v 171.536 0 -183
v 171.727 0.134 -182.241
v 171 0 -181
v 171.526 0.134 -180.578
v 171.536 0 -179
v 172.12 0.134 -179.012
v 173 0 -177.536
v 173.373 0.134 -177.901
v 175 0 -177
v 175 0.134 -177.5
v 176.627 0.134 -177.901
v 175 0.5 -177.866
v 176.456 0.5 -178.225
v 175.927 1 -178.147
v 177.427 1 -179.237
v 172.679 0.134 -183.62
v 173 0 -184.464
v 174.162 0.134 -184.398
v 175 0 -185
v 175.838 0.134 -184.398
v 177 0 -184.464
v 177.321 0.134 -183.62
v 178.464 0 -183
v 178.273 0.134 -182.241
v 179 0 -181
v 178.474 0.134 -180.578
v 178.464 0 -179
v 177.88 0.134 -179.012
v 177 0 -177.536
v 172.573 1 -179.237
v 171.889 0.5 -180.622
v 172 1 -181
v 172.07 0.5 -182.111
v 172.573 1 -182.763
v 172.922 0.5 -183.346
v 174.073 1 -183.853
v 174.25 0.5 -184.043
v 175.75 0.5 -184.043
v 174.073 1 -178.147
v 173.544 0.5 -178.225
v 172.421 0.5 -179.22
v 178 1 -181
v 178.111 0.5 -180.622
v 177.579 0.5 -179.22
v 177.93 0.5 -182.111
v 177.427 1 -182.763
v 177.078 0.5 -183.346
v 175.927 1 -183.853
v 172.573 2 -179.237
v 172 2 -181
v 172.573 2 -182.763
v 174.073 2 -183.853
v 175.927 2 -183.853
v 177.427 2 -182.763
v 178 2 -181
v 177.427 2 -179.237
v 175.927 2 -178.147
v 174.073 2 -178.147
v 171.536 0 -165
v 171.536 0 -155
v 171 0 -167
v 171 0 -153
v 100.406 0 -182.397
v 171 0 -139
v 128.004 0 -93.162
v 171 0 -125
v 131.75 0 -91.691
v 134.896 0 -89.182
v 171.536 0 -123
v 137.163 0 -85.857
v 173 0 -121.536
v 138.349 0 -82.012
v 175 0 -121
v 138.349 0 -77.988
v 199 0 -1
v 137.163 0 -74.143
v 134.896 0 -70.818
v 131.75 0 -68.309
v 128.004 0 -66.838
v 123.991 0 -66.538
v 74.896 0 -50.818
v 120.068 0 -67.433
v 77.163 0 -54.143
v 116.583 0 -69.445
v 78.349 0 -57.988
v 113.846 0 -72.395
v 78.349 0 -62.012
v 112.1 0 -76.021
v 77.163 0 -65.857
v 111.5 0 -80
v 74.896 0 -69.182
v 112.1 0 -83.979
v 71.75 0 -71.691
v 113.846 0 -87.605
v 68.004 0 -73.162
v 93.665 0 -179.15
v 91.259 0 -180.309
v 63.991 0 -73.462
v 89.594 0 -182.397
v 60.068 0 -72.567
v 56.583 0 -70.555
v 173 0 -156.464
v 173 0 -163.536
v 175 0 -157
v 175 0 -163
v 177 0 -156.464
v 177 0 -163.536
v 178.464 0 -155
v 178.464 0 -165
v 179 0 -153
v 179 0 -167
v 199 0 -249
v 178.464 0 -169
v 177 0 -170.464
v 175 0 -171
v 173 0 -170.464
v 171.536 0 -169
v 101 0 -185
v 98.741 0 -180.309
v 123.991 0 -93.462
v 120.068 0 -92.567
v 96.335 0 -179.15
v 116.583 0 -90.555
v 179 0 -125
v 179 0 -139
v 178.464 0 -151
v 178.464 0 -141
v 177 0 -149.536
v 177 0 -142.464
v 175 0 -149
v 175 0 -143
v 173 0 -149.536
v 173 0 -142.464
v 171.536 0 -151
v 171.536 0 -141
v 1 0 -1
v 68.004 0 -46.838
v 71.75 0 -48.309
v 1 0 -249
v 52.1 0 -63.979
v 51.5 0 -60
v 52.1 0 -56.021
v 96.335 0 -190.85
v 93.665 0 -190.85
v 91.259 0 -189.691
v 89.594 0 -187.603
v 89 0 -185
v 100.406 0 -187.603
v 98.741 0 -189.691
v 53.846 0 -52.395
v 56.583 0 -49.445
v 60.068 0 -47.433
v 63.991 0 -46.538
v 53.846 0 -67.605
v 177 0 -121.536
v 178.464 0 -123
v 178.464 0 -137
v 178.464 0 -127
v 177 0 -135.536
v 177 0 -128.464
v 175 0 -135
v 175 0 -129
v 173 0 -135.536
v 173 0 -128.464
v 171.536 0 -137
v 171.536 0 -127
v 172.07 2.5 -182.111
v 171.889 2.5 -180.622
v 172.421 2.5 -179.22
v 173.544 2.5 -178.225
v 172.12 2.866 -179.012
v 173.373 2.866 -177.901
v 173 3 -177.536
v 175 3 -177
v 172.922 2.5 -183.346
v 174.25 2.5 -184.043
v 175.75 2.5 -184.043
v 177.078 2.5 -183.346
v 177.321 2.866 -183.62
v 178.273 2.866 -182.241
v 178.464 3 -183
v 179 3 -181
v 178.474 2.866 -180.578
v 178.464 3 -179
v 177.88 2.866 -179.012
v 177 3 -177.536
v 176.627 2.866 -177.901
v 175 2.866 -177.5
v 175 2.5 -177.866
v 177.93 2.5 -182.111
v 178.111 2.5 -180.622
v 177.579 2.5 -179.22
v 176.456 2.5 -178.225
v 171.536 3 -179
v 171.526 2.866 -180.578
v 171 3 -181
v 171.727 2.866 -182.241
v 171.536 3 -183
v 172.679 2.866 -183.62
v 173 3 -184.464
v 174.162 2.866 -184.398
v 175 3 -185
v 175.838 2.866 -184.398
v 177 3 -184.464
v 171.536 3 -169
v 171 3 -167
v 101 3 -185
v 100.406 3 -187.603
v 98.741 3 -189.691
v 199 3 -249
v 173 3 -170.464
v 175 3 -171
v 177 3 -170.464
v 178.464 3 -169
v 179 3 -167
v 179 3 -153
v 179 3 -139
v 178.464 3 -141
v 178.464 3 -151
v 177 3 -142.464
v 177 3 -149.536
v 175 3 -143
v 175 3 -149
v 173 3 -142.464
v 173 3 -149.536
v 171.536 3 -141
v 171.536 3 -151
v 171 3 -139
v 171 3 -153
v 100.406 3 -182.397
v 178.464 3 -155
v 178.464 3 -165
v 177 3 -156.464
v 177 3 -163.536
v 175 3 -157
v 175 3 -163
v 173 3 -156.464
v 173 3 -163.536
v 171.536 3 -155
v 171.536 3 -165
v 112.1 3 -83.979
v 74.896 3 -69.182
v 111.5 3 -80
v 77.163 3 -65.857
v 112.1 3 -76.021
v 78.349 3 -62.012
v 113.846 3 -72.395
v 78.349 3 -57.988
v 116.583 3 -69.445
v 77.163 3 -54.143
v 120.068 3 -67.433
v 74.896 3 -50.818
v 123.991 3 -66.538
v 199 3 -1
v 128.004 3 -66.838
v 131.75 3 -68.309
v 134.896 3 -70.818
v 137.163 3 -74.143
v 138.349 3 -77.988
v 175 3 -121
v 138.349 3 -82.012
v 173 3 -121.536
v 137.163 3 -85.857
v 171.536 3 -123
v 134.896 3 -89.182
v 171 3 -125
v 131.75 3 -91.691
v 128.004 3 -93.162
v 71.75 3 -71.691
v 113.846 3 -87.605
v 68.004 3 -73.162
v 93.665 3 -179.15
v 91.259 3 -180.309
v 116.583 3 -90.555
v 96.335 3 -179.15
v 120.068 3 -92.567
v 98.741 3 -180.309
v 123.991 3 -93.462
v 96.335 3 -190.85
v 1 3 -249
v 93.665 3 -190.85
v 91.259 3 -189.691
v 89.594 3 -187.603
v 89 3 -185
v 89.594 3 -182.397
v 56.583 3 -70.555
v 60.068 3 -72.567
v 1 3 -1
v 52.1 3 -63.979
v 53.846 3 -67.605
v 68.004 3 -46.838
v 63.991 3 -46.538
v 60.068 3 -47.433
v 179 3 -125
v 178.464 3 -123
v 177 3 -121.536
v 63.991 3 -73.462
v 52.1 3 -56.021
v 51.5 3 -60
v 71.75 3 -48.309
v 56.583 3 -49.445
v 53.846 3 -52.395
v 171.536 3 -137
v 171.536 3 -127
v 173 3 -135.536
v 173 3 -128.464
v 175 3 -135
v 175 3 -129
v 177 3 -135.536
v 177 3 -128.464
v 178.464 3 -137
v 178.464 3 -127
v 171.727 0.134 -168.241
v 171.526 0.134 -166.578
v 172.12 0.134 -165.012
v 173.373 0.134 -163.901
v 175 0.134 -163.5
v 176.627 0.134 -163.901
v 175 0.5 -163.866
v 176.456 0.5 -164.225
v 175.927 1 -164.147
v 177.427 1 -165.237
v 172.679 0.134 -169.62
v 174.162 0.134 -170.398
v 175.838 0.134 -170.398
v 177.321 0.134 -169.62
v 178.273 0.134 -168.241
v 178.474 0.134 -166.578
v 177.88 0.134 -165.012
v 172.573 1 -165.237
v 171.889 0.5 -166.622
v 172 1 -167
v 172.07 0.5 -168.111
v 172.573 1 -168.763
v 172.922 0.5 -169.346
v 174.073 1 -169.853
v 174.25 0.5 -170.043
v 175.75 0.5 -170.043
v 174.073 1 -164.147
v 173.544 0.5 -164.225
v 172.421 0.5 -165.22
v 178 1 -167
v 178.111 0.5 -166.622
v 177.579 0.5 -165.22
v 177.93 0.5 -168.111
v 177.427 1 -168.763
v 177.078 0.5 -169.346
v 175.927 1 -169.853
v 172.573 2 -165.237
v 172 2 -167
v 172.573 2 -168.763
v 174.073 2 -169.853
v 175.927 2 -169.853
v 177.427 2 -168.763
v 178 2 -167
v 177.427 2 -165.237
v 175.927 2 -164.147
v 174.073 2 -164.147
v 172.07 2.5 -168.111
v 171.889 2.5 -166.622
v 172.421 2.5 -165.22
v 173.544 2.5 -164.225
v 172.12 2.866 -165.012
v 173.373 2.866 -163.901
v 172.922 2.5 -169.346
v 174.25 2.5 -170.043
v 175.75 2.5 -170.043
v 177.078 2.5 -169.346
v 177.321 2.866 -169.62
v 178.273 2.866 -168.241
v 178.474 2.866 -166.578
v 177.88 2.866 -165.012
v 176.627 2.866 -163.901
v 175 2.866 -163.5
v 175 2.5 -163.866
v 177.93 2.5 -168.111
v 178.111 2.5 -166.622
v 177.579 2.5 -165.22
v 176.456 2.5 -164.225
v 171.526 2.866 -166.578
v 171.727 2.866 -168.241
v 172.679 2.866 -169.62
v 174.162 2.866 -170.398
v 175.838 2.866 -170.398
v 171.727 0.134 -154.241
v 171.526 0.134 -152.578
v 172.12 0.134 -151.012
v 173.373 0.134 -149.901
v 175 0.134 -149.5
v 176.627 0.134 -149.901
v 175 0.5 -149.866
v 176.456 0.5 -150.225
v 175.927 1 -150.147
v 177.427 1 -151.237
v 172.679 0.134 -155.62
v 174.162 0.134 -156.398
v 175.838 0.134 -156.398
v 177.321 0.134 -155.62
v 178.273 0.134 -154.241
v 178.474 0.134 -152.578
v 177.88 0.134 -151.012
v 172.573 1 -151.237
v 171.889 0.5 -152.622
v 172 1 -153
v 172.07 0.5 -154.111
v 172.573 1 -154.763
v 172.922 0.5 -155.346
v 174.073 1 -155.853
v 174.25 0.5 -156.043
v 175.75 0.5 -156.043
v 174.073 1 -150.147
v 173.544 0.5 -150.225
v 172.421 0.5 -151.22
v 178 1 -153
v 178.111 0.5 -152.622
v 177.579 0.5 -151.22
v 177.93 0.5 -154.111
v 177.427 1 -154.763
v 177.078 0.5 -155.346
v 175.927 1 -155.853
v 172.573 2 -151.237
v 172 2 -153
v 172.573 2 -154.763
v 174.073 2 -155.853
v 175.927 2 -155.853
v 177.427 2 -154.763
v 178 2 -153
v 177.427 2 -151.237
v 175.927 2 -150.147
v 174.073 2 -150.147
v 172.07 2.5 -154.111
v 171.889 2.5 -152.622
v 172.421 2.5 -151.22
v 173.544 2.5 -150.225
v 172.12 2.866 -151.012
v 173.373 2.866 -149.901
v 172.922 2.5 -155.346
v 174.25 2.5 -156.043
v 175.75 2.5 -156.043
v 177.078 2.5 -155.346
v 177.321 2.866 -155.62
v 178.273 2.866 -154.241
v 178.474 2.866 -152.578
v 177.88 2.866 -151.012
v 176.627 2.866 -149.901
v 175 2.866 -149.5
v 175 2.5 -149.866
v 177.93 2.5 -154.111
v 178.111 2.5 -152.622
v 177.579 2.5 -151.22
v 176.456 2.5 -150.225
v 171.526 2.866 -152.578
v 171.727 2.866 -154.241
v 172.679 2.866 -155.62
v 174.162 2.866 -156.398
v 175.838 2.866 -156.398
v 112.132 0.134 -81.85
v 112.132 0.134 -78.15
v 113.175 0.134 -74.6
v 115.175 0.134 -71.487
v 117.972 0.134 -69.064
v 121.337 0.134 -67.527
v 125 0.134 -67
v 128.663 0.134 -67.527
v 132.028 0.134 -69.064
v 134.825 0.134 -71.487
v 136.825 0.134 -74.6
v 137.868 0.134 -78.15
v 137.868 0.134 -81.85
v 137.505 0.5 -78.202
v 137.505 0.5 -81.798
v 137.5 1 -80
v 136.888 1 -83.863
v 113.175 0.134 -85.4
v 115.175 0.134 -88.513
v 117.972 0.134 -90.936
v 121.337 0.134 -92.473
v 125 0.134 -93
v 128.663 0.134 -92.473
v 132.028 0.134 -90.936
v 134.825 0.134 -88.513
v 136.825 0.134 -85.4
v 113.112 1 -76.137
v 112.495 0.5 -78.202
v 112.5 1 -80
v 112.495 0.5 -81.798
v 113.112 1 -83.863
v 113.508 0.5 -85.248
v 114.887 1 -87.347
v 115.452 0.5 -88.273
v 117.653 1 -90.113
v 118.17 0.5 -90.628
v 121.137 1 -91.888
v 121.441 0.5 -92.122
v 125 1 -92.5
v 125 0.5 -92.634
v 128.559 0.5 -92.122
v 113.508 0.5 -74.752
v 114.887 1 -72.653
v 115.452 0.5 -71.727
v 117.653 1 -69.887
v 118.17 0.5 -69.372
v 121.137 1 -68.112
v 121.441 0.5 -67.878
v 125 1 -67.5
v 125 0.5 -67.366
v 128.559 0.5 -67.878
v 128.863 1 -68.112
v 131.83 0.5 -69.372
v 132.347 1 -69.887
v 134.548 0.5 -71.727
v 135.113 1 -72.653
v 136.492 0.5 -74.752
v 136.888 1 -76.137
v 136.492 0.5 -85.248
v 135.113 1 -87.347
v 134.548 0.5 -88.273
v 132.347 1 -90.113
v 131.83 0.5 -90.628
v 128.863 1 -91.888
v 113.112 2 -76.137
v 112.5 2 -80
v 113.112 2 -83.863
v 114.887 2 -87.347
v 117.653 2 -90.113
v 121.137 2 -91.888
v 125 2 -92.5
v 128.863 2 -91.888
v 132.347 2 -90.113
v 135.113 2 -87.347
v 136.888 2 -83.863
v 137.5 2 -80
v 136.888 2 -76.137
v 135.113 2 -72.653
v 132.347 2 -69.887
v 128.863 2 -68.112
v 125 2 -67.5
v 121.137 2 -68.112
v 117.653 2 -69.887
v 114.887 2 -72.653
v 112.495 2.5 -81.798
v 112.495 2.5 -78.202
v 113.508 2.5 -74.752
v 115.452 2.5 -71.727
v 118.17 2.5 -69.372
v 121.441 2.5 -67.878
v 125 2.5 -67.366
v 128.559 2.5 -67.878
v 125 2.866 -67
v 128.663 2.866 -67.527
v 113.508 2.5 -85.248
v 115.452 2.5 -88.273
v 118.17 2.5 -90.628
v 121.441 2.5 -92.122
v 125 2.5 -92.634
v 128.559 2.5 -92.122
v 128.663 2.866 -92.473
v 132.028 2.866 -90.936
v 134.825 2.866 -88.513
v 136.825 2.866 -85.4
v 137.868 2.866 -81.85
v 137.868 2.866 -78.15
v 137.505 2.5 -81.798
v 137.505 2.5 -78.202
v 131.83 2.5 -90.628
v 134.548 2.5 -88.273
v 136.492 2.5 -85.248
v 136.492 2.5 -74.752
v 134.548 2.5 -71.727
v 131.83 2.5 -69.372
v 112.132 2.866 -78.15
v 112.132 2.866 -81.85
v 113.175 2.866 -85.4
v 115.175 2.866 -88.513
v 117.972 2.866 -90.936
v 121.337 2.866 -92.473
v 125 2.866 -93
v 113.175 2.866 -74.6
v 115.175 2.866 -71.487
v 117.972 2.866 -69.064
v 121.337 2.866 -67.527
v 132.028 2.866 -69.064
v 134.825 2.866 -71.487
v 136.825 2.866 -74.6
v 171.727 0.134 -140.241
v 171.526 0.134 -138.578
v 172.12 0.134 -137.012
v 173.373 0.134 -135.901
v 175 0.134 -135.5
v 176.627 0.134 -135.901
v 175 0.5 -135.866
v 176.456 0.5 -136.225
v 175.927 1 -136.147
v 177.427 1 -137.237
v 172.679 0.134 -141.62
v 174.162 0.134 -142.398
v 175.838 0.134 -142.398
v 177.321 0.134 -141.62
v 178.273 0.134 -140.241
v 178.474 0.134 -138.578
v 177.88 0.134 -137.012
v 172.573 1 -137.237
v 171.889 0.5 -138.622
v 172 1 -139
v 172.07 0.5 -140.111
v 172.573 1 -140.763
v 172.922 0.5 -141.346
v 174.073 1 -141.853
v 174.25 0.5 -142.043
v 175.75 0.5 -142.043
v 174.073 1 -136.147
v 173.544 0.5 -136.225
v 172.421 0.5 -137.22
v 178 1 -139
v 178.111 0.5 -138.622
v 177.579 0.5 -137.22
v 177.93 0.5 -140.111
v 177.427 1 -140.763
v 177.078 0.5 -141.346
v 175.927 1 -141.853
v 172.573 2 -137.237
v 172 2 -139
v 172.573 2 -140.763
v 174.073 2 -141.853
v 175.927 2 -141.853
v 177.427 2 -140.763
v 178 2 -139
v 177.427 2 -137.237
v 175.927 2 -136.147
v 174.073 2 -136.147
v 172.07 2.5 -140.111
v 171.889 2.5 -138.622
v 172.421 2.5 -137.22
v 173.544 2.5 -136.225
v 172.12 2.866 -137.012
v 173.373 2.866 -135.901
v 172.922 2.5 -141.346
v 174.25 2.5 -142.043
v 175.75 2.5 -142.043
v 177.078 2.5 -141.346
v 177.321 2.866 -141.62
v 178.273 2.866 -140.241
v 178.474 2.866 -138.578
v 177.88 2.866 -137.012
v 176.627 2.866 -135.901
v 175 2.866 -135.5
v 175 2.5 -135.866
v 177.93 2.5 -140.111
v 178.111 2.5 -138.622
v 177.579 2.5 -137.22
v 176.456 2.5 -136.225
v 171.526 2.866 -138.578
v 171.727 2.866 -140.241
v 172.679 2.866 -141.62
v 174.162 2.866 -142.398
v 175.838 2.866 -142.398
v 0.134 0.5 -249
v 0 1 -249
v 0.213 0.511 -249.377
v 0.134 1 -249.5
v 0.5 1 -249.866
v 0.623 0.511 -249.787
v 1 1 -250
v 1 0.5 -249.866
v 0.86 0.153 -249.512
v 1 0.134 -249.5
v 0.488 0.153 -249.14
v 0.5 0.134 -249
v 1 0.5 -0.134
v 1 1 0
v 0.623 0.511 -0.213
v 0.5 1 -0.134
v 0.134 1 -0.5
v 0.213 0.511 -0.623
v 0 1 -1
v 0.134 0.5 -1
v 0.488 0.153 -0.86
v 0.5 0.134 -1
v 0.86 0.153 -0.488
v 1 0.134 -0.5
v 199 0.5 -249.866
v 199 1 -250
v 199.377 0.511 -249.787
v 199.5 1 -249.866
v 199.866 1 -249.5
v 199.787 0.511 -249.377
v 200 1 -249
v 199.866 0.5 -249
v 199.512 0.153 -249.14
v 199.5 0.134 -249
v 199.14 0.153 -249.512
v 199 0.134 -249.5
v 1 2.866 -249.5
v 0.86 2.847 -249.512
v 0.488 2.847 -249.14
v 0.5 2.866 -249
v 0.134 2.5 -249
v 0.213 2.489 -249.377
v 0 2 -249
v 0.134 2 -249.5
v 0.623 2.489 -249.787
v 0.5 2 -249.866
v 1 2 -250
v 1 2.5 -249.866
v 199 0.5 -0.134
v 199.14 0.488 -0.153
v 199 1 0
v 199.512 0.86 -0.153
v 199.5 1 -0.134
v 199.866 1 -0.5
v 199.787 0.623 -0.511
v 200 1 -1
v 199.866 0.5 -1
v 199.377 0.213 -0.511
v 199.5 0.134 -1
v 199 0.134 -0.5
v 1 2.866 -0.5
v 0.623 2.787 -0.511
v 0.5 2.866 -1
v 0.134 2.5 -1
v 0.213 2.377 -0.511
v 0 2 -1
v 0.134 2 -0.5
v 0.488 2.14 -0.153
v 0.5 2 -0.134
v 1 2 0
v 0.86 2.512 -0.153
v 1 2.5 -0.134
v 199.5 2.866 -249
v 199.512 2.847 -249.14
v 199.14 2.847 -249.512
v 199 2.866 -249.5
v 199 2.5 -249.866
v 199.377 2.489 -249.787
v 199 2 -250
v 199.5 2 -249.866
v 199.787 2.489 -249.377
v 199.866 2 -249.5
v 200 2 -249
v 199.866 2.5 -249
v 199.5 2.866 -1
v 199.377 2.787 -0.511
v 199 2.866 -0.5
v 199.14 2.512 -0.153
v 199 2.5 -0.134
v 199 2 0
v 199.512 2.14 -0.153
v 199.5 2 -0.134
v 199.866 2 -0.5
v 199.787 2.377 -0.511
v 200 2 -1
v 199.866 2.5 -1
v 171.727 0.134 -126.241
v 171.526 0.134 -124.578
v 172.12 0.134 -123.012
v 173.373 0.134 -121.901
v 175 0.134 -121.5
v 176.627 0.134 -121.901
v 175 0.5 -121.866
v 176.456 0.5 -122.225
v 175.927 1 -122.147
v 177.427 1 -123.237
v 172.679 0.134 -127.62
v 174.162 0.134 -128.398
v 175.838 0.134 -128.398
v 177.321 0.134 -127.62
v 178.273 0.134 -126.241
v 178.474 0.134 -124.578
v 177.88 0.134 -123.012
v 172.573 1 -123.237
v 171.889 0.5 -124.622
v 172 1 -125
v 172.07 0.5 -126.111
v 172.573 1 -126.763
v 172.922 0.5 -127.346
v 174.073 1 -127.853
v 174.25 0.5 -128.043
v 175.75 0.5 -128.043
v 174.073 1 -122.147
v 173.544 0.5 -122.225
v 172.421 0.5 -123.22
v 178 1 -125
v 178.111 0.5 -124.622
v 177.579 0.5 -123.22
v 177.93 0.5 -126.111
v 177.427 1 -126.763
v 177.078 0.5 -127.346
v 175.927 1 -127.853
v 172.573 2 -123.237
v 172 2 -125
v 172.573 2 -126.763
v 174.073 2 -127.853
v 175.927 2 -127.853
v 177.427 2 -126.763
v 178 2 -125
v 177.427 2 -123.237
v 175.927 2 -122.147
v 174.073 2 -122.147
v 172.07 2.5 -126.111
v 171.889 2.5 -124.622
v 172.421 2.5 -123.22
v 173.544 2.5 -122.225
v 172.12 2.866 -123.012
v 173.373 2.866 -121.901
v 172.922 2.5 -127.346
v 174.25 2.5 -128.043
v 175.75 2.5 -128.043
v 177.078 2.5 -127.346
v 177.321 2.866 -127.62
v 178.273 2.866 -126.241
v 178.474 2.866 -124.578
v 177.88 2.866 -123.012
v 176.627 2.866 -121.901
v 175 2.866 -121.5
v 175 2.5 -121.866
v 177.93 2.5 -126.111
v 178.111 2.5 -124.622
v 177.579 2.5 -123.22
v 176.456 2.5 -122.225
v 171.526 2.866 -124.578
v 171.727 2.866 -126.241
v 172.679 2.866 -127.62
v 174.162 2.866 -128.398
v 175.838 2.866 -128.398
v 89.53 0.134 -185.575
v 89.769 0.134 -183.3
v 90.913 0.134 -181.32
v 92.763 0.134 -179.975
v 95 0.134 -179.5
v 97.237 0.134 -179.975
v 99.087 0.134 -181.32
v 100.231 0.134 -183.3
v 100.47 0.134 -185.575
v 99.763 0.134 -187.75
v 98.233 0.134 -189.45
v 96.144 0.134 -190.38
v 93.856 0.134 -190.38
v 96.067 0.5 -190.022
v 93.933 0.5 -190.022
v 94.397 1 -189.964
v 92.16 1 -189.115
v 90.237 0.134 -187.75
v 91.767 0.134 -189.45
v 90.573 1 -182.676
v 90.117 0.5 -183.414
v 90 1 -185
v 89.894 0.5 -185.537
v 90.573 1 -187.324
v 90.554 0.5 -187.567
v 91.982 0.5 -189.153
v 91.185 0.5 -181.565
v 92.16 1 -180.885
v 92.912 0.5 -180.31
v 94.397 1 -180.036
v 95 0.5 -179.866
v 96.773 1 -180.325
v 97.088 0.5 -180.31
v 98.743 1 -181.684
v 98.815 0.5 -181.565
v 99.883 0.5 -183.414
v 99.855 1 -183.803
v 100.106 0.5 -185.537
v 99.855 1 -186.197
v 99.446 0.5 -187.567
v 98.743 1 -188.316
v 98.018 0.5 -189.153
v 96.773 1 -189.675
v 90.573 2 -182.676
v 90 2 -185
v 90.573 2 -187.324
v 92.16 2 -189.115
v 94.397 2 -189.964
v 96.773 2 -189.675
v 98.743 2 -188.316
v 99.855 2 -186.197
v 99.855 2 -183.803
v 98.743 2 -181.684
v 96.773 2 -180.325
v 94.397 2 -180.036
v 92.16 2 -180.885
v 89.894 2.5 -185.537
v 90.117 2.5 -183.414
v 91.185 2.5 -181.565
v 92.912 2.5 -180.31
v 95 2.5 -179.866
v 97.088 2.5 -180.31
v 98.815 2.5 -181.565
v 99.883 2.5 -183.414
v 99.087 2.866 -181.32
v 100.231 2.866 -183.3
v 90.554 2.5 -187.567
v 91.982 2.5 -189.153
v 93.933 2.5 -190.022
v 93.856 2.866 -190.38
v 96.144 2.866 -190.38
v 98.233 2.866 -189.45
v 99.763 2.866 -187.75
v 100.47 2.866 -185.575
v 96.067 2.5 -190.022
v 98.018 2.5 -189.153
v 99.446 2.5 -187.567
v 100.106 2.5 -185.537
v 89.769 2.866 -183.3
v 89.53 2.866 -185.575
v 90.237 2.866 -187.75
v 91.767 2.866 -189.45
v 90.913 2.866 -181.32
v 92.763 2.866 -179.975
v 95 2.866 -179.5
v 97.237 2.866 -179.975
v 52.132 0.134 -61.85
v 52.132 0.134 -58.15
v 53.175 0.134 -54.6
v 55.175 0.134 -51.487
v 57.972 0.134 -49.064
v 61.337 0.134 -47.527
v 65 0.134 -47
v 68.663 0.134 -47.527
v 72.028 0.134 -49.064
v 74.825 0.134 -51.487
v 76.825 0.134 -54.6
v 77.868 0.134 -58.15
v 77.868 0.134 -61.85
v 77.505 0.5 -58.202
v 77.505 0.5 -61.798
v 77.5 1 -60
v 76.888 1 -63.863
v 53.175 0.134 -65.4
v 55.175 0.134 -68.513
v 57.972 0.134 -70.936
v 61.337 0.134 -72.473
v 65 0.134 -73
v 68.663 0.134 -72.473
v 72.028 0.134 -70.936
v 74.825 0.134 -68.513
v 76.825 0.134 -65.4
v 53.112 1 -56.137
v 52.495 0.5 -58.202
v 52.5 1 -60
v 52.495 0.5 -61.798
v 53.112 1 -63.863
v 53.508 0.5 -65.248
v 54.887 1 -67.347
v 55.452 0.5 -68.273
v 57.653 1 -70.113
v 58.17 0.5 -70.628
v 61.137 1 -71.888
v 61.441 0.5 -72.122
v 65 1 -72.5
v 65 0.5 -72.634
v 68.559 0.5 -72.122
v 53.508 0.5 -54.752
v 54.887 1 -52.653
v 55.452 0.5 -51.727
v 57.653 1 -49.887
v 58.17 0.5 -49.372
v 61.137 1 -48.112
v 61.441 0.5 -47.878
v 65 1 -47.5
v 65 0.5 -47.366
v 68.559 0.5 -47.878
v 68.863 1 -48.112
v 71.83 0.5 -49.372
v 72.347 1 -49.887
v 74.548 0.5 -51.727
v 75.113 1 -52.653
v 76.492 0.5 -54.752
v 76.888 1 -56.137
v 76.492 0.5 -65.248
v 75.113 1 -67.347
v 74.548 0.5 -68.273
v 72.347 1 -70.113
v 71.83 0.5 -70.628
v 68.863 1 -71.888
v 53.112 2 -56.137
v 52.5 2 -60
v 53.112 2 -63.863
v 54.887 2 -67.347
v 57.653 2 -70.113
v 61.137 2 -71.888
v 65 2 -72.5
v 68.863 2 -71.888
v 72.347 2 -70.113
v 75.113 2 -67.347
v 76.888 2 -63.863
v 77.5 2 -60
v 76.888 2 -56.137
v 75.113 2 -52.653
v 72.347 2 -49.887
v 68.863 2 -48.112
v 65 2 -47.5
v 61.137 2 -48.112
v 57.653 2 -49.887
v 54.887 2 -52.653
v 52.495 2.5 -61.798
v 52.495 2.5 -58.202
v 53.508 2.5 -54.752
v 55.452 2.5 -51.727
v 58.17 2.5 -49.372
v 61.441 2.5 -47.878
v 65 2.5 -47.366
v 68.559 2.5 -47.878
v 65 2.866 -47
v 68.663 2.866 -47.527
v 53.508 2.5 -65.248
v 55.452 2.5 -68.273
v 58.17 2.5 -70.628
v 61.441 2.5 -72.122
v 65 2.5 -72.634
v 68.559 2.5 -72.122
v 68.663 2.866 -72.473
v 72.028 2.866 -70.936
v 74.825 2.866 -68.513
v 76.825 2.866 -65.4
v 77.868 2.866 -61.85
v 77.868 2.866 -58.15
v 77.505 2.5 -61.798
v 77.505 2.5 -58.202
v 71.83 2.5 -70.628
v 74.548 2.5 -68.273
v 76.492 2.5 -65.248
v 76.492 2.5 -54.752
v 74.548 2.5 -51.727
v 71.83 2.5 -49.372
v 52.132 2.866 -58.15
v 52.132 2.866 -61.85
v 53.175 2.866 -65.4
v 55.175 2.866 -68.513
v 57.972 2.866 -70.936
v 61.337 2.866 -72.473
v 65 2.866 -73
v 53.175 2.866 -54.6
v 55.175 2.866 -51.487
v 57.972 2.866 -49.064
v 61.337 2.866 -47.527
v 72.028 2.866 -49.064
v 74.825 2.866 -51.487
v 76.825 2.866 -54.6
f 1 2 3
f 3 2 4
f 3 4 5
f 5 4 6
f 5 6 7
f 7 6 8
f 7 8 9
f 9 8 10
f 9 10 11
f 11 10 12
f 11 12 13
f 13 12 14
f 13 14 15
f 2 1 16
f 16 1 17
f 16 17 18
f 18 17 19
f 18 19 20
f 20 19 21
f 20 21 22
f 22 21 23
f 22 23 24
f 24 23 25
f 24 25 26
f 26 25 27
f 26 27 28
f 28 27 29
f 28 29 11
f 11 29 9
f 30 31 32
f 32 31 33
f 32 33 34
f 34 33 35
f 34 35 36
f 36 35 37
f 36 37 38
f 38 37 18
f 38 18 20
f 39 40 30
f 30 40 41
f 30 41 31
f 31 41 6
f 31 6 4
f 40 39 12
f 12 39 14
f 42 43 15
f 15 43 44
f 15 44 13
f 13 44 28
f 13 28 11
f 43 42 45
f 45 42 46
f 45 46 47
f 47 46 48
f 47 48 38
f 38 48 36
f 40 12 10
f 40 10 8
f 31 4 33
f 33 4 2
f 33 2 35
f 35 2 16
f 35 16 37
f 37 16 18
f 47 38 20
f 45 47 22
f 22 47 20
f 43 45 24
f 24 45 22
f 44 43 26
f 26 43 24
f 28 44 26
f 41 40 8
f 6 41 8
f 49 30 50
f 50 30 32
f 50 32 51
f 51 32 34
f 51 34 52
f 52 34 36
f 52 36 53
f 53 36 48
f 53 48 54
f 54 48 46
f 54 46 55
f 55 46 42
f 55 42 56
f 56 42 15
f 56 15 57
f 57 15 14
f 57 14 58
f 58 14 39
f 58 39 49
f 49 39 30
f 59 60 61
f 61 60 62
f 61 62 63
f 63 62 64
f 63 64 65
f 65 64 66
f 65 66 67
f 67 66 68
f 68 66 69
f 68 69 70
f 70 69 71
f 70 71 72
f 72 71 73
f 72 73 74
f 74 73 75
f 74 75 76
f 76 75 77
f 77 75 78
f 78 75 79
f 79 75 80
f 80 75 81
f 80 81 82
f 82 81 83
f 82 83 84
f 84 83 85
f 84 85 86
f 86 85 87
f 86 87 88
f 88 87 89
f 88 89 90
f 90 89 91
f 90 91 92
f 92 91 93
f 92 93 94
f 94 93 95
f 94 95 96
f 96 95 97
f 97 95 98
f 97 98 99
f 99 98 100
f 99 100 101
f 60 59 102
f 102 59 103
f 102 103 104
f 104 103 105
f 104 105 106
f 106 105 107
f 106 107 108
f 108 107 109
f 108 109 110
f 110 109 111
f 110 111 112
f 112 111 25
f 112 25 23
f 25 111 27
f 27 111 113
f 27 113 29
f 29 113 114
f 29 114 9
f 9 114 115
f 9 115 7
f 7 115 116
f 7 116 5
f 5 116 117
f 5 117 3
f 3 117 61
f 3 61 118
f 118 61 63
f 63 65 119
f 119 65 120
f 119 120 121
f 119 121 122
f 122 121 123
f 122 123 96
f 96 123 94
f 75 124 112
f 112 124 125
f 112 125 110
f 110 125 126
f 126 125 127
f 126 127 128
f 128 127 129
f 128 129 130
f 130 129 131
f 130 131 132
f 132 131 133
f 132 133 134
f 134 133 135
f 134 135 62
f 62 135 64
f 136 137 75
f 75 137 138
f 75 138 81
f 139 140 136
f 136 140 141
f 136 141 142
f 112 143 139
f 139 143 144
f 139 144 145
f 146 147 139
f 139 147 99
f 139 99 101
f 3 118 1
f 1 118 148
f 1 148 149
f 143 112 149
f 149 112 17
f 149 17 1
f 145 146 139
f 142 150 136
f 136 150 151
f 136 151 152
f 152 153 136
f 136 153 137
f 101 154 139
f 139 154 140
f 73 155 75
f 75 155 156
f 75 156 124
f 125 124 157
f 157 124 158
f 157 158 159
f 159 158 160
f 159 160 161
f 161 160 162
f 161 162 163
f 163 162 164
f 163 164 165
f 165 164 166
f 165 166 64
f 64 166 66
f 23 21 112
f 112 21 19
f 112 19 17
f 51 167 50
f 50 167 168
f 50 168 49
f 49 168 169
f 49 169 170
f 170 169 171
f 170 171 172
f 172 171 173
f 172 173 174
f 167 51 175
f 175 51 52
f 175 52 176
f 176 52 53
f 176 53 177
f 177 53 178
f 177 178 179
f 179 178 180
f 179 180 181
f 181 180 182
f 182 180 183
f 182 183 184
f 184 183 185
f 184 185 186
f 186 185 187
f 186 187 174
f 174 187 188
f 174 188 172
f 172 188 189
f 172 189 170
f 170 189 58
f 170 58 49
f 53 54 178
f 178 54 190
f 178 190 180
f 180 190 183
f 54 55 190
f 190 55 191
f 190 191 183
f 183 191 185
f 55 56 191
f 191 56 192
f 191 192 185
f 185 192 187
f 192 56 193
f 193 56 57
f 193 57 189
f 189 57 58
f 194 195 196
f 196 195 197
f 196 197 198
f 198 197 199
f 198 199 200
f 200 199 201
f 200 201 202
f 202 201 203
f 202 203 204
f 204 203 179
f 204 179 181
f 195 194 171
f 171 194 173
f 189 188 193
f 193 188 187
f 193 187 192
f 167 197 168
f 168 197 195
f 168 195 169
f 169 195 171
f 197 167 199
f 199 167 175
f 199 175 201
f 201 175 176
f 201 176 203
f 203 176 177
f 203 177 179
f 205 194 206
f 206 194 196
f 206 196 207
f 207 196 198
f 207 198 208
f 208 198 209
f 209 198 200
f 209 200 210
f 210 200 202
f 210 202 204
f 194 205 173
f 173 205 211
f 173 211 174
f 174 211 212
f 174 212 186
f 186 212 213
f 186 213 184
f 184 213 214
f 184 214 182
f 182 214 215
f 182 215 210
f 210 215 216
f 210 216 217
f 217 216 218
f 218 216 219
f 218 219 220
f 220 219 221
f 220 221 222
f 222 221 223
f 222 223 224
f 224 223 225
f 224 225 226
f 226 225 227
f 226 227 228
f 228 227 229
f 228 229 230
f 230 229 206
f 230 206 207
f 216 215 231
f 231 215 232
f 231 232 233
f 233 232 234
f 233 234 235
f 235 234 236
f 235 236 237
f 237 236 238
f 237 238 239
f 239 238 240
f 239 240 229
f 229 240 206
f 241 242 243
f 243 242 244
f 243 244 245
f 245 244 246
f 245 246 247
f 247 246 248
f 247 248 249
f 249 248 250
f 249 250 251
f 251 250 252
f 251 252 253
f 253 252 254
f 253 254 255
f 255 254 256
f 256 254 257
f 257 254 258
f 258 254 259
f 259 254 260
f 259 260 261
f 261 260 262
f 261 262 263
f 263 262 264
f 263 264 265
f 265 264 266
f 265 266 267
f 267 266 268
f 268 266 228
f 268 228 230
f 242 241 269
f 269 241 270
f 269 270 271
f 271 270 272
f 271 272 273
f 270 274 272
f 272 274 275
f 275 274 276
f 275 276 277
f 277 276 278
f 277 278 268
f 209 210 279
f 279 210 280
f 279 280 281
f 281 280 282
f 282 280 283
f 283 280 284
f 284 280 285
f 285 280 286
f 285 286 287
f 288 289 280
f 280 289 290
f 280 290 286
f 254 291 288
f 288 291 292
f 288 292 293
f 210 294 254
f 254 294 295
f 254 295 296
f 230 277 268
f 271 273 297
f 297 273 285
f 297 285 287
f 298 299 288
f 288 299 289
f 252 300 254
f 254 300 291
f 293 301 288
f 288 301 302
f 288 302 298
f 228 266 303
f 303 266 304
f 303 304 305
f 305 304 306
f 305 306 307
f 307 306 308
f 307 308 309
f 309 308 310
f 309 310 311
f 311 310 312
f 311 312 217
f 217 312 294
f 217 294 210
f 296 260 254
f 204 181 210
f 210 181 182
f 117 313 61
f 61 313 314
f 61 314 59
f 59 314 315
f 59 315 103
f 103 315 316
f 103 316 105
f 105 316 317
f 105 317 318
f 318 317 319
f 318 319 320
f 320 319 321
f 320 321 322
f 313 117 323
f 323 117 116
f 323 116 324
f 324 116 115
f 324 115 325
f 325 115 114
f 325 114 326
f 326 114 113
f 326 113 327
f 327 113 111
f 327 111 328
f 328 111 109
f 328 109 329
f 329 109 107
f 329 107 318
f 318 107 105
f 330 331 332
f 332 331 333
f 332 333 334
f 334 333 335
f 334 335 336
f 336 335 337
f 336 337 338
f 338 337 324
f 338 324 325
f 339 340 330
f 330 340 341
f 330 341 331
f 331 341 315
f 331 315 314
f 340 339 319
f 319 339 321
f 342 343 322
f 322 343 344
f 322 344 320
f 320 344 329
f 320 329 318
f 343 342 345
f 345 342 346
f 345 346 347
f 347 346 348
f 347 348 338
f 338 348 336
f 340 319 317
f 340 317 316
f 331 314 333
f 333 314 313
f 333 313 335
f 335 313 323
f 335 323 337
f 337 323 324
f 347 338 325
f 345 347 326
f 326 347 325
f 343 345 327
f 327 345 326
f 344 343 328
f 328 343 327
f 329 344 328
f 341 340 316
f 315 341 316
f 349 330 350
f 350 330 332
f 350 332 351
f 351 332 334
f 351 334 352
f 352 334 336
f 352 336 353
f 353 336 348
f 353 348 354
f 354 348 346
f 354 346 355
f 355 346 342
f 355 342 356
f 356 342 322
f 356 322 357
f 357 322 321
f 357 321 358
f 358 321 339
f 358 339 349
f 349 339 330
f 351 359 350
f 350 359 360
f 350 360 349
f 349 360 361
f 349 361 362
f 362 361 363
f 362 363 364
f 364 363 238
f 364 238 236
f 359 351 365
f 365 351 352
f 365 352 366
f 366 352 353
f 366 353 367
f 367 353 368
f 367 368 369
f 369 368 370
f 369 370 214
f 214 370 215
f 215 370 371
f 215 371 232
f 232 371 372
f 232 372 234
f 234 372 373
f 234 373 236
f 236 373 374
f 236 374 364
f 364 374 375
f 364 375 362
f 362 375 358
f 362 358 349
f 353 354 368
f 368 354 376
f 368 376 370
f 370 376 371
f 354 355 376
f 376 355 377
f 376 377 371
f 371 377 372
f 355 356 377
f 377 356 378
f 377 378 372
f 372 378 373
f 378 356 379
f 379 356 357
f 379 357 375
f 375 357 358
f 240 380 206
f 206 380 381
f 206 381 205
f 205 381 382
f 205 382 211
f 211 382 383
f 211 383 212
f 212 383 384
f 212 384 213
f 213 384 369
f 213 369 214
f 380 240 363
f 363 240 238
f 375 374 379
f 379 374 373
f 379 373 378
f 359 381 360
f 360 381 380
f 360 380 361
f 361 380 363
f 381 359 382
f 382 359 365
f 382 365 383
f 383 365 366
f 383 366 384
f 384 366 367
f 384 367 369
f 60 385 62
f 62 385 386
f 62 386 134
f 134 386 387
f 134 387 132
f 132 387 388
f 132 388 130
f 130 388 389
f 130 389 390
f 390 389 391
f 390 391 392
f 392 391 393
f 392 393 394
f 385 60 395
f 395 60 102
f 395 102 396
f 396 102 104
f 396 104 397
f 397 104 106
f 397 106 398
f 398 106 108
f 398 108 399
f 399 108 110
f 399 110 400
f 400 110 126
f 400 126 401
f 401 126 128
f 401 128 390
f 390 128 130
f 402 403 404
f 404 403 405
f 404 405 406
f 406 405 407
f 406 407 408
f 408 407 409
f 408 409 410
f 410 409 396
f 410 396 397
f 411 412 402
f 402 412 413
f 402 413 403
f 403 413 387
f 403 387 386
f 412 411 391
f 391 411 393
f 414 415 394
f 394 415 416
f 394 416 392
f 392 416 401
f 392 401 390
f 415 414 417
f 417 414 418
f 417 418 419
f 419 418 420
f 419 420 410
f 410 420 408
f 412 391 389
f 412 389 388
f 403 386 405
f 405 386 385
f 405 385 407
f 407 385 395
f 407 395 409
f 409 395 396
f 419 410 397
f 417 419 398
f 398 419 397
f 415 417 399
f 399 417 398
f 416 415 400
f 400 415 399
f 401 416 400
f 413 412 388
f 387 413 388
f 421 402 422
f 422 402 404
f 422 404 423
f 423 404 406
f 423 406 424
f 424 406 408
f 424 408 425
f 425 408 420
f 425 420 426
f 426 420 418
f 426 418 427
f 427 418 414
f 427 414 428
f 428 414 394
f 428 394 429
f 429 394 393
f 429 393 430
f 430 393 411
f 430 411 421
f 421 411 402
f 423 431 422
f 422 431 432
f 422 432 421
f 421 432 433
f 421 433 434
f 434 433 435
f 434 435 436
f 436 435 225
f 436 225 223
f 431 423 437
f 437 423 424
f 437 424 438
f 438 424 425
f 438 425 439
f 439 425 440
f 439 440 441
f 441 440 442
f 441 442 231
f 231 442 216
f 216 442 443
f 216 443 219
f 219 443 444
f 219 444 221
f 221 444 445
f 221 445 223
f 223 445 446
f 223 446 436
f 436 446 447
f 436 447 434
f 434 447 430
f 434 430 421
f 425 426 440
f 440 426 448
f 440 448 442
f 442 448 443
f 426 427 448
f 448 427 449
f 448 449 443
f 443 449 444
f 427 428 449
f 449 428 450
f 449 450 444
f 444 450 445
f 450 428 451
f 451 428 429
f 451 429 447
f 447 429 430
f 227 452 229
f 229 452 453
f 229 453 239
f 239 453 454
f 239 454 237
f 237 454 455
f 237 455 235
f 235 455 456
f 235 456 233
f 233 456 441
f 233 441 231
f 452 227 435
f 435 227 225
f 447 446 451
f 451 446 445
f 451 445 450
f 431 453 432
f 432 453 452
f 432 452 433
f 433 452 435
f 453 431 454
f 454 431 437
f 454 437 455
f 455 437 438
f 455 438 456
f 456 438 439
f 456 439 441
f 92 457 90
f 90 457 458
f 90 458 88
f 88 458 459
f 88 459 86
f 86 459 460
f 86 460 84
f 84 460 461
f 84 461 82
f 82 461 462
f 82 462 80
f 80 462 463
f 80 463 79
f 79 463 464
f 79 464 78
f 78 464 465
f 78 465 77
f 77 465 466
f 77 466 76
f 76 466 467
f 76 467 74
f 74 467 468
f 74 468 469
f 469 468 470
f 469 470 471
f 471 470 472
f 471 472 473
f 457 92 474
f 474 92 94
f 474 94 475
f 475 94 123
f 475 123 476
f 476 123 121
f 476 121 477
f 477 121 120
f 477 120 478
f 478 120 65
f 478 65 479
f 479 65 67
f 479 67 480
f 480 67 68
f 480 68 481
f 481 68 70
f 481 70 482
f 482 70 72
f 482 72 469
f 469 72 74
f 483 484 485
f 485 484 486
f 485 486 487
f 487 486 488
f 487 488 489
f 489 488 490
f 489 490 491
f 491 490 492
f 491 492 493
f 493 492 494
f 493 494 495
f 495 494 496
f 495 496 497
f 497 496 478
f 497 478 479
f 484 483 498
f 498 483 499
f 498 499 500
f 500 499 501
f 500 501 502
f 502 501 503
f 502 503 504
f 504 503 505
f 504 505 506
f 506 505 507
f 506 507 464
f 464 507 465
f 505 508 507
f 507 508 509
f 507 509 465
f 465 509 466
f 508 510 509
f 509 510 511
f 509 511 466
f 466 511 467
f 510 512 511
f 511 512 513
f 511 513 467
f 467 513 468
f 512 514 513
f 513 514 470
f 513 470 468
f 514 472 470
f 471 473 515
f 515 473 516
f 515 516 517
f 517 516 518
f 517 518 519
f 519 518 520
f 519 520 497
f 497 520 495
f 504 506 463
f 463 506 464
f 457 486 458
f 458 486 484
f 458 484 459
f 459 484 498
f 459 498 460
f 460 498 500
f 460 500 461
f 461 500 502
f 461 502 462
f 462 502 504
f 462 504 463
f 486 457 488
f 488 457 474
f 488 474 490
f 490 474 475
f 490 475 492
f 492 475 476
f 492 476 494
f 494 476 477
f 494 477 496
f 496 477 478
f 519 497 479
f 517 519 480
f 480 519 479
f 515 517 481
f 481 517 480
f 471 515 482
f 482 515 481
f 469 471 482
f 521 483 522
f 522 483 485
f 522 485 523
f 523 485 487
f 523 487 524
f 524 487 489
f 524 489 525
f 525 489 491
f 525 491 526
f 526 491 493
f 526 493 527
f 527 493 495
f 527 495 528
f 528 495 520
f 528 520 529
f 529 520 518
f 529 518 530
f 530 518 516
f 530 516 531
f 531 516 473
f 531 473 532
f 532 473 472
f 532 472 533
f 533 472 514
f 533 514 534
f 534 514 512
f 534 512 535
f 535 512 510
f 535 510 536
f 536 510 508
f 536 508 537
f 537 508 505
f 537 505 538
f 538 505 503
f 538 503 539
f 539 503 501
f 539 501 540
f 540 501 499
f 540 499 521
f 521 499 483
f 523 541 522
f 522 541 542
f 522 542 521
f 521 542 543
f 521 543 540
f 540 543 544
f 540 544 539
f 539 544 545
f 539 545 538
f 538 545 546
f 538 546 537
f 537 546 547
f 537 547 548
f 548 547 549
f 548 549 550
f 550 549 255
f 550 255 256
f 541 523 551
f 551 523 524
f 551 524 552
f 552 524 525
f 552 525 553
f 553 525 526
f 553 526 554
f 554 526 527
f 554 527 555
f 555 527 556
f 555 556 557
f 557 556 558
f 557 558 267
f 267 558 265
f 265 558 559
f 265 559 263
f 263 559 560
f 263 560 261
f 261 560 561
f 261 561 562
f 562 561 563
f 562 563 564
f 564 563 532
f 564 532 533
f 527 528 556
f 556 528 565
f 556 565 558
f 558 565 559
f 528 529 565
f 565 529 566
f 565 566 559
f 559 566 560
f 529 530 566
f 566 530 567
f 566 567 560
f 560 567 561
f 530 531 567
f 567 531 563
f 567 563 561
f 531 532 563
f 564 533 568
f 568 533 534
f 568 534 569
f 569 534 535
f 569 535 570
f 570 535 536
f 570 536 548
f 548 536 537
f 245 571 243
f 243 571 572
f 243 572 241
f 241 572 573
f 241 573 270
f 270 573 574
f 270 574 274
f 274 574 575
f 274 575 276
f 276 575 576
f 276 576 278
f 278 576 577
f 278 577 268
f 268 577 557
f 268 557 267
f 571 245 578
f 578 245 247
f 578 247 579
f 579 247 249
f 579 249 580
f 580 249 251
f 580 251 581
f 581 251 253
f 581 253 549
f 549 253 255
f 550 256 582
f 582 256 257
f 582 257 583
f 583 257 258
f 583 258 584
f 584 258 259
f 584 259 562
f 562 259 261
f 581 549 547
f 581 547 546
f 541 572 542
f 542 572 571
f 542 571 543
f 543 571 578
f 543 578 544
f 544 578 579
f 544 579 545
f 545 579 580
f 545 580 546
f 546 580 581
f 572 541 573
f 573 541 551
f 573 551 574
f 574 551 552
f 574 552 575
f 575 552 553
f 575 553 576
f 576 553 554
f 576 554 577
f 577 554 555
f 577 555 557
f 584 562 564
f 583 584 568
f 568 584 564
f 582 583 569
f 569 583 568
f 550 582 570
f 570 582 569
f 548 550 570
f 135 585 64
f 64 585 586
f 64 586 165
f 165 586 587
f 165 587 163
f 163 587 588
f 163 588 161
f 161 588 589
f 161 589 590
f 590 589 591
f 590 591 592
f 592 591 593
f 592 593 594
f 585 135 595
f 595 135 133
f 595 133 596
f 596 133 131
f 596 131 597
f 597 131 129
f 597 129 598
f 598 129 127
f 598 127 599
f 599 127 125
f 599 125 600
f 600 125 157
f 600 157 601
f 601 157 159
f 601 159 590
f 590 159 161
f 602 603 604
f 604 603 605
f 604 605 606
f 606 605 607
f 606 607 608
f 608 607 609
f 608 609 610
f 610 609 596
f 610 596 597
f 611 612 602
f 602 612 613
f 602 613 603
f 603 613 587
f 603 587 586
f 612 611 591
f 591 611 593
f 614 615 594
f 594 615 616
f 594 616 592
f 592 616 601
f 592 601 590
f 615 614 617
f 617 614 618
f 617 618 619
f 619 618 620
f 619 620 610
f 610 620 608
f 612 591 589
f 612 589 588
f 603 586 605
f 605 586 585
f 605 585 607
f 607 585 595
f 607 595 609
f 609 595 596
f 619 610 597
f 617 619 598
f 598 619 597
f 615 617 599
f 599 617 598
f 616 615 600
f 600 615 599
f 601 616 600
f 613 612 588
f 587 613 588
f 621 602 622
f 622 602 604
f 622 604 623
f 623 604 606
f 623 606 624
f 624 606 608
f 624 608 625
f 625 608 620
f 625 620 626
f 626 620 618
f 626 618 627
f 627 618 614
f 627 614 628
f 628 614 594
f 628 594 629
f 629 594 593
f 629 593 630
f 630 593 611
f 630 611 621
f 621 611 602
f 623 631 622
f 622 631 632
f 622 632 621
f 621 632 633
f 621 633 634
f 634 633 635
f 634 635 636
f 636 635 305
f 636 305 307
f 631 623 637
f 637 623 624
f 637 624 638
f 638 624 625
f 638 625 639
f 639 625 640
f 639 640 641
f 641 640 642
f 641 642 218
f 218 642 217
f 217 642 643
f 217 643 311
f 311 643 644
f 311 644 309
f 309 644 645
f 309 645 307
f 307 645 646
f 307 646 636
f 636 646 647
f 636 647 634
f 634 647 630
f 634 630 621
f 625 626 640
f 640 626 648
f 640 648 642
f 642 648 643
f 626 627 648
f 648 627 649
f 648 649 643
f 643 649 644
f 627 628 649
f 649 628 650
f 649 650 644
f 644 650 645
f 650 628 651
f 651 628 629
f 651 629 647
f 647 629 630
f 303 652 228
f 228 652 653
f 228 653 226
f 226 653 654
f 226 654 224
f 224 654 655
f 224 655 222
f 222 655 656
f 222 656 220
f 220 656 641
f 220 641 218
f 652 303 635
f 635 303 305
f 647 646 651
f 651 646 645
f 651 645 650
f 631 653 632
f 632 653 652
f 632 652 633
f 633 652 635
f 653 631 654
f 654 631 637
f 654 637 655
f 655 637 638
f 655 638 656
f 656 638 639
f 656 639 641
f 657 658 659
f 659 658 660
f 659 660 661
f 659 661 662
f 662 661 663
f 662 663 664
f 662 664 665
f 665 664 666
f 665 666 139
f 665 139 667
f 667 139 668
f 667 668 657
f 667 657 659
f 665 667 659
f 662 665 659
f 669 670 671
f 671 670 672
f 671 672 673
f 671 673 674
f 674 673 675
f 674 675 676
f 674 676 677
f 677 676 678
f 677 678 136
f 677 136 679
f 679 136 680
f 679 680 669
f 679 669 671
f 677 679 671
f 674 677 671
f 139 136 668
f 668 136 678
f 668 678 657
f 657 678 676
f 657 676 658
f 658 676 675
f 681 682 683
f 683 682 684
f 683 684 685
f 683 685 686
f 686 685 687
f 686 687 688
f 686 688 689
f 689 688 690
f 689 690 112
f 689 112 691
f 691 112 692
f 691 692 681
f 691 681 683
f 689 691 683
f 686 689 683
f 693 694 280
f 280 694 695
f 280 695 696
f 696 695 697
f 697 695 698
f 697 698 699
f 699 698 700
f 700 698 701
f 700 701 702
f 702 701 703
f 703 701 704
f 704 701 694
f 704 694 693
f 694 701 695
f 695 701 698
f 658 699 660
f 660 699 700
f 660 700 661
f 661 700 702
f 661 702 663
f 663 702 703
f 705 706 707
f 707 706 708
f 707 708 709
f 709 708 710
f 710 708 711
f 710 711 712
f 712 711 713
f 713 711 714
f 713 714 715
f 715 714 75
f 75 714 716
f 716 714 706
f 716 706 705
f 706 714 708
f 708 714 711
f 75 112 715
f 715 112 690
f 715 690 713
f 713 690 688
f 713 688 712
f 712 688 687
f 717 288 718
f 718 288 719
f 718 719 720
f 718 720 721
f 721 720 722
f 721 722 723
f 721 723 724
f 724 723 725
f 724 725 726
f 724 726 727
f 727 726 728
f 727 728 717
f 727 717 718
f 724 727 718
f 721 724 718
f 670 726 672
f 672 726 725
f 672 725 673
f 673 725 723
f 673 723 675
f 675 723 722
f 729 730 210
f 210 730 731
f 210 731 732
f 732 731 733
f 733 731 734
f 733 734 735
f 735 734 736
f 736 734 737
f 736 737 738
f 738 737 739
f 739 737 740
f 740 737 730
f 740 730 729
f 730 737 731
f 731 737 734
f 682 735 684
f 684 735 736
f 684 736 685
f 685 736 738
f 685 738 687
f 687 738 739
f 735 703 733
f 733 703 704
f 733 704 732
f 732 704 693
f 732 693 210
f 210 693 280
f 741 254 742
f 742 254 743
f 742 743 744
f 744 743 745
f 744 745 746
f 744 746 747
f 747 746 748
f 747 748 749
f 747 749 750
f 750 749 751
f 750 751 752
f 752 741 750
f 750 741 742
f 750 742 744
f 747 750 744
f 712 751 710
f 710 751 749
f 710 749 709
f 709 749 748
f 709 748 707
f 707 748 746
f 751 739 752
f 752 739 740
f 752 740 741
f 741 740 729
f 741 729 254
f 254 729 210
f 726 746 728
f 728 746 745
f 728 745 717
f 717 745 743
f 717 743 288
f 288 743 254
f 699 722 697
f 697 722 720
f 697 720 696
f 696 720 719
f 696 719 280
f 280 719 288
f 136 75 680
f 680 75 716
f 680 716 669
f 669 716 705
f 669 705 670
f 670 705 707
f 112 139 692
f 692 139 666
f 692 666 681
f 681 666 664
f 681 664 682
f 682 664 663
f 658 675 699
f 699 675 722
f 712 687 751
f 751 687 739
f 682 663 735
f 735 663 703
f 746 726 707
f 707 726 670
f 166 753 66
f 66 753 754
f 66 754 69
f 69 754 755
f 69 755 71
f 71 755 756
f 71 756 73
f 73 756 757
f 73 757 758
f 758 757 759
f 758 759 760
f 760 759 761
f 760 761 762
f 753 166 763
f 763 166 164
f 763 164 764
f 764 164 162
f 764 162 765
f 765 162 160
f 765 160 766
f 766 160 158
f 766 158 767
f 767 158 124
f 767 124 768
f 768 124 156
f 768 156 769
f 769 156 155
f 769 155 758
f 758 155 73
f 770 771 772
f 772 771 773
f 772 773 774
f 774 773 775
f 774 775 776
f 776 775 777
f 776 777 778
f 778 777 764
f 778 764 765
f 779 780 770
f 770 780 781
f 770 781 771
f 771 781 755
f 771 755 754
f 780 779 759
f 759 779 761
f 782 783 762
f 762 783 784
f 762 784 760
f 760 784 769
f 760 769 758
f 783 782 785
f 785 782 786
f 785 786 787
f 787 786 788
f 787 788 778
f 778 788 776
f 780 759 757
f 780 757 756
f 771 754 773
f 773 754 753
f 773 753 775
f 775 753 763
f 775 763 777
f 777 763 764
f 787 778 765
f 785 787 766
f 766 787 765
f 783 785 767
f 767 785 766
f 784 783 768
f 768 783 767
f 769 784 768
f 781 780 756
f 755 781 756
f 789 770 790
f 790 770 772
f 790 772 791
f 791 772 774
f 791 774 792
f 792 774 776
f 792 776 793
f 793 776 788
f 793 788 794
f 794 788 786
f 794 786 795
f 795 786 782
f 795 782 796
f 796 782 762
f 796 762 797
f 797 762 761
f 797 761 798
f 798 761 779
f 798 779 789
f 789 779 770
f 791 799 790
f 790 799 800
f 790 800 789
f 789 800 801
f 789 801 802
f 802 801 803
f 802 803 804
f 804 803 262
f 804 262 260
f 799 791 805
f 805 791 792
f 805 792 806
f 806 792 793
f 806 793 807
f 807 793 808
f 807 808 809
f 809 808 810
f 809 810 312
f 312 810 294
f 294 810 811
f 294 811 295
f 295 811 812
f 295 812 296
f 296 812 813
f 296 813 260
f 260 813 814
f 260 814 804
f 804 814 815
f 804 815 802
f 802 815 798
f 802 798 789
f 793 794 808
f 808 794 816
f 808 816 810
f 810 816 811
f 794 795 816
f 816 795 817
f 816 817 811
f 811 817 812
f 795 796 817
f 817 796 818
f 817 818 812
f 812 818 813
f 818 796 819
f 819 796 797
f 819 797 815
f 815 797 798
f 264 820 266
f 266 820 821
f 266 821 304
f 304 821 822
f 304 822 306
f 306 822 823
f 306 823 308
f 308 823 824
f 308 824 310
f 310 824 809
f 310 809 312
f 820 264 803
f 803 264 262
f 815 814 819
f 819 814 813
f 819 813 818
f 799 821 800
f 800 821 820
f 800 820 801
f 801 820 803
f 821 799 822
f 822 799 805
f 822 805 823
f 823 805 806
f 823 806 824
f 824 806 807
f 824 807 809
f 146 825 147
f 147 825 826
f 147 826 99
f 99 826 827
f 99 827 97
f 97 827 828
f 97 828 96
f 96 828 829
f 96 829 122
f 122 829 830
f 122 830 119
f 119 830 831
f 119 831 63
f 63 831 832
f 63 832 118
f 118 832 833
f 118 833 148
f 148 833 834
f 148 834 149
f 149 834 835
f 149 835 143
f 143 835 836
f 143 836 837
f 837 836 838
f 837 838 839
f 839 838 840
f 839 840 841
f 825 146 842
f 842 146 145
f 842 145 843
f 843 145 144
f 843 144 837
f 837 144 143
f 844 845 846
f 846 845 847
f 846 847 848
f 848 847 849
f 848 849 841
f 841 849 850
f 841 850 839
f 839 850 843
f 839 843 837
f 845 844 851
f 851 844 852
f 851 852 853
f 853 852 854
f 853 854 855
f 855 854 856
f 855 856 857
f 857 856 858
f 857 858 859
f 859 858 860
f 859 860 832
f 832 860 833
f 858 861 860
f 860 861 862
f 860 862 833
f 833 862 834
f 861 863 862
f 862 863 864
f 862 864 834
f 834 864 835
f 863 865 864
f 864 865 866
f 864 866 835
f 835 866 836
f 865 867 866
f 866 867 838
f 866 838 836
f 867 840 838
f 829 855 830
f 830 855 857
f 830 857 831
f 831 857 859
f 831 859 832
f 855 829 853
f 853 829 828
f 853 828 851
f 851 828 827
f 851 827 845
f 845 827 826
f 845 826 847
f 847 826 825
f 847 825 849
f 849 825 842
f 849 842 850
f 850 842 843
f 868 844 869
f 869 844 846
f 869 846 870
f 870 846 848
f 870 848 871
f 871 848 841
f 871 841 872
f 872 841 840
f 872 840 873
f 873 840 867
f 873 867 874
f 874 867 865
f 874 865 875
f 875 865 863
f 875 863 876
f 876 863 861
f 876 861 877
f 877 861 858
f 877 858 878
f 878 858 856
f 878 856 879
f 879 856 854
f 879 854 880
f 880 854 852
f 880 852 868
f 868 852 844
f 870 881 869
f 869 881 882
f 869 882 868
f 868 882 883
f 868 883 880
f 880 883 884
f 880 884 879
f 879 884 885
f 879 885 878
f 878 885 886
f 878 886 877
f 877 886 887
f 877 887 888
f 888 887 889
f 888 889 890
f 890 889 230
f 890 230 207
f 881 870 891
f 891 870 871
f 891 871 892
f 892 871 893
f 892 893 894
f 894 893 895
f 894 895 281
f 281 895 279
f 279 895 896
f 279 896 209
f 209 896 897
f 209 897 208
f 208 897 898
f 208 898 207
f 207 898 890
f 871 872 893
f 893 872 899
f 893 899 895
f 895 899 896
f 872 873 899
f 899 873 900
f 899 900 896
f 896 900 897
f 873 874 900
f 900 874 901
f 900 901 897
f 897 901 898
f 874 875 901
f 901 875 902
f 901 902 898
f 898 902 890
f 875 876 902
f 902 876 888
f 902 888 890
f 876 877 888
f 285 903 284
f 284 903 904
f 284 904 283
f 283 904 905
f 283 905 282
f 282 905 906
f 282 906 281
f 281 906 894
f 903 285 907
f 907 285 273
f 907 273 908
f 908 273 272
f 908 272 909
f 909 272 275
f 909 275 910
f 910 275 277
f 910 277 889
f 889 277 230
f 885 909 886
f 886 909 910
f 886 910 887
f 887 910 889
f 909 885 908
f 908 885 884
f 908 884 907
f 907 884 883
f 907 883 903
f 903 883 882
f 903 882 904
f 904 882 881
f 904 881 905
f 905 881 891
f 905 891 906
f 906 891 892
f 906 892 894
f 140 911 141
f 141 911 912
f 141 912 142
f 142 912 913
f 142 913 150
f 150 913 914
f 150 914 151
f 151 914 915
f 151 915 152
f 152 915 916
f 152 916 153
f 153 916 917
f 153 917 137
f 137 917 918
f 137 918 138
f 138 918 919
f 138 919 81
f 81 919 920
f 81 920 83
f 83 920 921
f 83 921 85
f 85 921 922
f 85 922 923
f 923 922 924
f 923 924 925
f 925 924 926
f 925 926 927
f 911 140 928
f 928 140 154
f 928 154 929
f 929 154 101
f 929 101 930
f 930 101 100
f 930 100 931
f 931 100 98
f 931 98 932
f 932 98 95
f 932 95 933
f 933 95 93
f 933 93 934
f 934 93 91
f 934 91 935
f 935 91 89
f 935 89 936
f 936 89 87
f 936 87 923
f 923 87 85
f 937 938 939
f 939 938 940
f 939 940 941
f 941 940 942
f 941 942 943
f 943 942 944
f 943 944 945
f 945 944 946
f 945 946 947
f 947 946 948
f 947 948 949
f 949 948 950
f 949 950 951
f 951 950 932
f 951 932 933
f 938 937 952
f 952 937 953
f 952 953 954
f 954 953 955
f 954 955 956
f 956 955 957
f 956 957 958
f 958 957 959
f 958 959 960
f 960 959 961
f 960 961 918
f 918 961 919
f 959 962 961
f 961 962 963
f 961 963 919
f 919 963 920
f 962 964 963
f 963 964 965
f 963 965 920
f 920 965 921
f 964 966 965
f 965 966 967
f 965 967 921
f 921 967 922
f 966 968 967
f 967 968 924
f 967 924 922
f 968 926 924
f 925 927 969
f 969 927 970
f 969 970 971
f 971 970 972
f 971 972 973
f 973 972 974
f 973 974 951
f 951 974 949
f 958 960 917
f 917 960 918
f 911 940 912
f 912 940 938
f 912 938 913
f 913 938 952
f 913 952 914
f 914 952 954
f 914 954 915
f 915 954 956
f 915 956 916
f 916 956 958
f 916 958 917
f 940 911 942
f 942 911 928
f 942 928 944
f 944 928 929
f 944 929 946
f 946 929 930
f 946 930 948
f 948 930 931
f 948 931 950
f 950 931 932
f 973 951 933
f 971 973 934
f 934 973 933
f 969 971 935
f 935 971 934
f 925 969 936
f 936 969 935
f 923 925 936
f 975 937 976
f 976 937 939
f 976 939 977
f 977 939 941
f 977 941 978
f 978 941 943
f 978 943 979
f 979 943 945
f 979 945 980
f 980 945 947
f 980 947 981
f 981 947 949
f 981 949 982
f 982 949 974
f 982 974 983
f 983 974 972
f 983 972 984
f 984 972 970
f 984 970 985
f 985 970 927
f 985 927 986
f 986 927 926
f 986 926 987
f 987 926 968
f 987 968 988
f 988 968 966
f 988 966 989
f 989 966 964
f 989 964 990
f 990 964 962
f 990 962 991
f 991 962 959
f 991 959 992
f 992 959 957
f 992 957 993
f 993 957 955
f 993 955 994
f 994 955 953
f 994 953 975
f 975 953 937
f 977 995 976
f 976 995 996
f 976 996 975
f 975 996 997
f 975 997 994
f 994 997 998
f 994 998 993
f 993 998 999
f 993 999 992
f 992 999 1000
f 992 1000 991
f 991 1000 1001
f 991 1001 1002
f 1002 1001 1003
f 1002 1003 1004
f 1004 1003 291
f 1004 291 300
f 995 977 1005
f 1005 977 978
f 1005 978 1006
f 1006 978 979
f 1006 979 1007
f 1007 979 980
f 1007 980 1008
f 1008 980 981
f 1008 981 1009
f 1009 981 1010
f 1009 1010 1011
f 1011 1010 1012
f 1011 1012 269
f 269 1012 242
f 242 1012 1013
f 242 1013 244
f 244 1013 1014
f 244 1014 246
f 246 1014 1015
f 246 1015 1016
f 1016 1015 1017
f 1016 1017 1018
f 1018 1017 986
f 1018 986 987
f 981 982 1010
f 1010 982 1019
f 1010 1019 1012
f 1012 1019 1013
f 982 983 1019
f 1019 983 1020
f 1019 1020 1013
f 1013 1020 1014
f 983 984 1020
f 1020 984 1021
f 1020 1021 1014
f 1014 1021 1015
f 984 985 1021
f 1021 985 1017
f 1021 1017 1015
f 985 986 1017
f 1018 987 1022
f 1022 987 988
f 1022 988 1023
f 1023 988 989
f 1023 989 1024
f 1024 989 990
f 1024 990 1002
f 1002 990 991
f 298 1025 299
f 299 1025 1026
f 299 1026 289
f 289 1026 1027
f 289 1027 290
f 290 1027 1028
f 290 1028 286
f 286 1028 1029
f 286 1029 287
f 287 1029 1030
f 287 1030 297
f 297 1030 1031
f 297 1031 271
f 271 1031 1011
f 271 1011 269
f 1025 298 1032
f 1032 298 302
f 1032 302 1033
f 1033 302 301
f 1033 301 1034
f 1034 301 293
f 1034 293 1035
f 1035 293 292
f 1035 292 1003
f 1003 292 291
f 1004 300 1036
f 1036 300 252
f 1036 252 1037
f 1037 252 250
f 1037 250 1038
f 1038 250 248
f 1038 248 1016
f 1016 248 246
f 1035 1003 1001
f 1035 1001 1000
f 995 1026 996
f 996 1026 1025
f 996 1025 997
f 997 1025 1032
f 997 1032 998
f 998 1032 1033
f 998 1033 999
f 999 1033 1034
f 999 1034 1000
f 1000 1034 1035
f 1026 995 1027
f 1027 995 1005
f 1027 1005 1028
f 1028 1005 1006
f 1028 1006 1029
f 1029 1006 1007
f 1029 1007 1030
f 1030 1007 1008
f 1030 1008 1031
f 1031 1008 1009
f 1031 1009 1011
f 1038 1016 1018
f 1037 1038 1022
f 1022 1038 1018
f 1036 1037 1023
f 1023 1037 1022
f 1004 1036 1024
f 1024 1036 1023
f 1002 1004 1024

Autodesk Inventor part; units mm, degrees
ref_plane "YZ Plane" through (0, 0, 0) normal (1, 0, 0) x (0, 1, 0)
ref_plane "XZ Plane" through (0, 0, 0) normal (0, 1, 0) x (-1, 0, 0)
ref_plane "XY Plane" through (0, 0, 0) normal (0, 0, 1) x (1, 0, 0)
sketch "page_lines" plane through (0, 0, 0) normal (0, 1, 0) x (-1, 0, 0)
  line L0 (0, 0) -> (-200, 0)
  line L1 (-200, 0) -> (-200, -250)
  line L2 (-200, -250) -> (0, -250)
  line L3 (0, -250) -> (0, 0)
  circle A0 centre (-65, -60) radius 6
  circle A1 centre (-125, -80) radius 6
  circle A2 centre (-65, -60) radius 12.5
  circle A3 centre (-65, -60) radius 8.5
  circle A4 centre (-125, -80) radius 8.5
  circle A5 centre (-125, -80) radius 12.5
  circle A6 centre (-175, -125) radius 3
  line L4 (-175, -125) -> (-175, -209)
  line L5 (-175, -125) -> (-91, -125) construction
  circle A7 centre (-175, -139) radius 3
  circle A8 centre (-175, -153) radius 3
  circle A9 centre (-175, -167) radius 3
  circle A10 centre (-175, -181) radius 3
  circle A11 centre (-175, -195) radius 3
  circle A12 centre (-175, -209) radius 3
  circle A13 centre (-95, -185) radius 2.5
  circle A14 centre (-95, -185) radius 5
  point P0 (-200, -125)
  dimension "d0" = 200
  dimension "d1" = 250
  dimension "d2" = 12
  dimension "d3" = 12
  dimension "d4" = 25
  dimension "d5" = 17
  dimension "d6" = 17
  dimension "d7" = 25
  dimension "d8" = 75
  dimension "d9" = 80
  dimension "d10" = 65
  dimension "d11" = 60
  dimension "d12" = 6
  dimension "d13" = 84
  dimension "d14" = 90
  dimension "d15" = 25
  dimension "d16" = 125
  dimension "d19" = 14
  dimension "d24" = 5
  dimension "d25" = 10
  dimension "d26" = 65
  dimension "d27" = 95
extrude "nor" add sketch "page_lines" along normal blind 3 contours L3 L2 L1 L0 | A11 L4 | L4 A11 | A12
fillet "Fillet1" radius 1 28 edges at (77.5, 3, -60) (77.5, 0, -60) (100, 3, -185) (100, 0, -185) (178, 3, -125) (178, 0, -125) (200, 3, -125) (200, 0, -125) (100, 0, 0) (100, 3, 0) (200, 1.5, 0) (0, 1.5, 0) (0, 3, -125) (0, 0, -125) (0, 1.5, -250) (100, 3, -250) (100, 0, -250) (200, 1.5, -250) (178, 3, -139) (178, 0, -139) (137.5, 3, -80) (137.5, 0, -80) (178, 3, -153) (178, 0, -153) (178, 3, -167) (178, 0, -167) (178, 3, -181) (178, 0, -181)
properties part number "pages_nor"
